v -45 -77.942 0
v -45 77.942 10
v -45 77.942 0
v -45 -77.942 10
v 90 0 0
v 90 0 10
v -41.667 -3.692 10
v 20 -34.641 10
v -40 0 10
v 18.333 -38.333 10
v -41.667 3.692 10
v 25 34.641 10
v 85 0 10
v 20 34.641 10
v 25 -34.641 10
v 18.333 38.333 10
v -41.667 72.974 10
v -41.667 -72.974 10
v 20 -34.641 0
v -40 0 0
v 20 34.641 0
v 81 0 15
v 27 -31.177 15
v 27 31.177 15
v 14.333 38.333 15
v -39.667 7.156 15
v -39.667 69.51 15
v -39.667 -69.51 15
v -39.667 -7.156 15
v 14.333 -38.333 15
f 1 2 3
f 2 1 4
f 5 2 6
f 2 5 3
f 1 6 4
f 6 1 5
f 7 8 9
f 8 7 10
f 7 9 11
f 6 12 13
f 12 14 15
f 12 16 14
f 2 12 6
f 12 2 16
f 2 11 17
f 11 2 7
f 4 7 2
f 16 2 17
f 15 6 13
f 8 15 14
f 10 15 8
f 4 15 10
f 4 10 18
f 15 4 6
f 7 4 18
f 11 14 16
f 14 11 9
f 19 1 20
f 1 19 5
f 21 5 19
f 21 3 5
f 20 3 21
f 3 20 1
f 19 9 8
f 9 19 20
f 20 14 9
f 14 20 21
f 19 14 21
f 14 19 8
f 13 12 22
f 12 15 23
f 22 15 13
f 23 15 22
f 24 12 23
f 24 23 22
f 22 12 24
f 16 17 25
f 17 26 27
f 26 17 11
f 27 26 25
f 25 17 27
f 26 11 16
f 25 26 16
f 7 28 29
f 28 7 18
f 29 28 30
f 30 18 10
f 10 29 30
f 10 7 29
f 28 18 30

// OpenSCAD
//Created and printed this model as a christmas present for my brother

//main refers to base triangle
//sub referse to cap triangles
main_thickness = 10;
main_length = 90;
sub_thickness = 5;
sub_length = 40;
sub_warp = .9;
border = 5;


            // first triangle 'cap'
            translate([main_length-sub_length-border,0,main_thickness])
            {
                cylinder(sub_thickness,sub_length,sub_length*sub_warp, center = false, $fn = 3);
            }
            // second triangle 'cap'
            translate([
                        -(main_length-sub_length)/3-border,
                        2*(main_length-sub_length)/3+border,
                        main_thickness
                      ])
            {
                cylinder(sub_thickness,sub_length,sub_length*sub_warp, center = false, $fn = 3);
            }
            
            //third triangle 'cap'
            translate([
                        -(main_length-sub_length)/3-border,
                        -2*(main_length-sub_length)/3-border,
                        main_thickness
                      ])
            {
                cylinder(sub_thickness,sub_length,sub_length*sub_warp, center = false, $fn = 3);
            }
            
            //base triangle
            difference()
            {
                cylinder(main_thickness,main_length,main_length, center = false, $fn = 3);
                rotate(60)
                {
                    translate([0,0,-1])
                    {
                        cylinder(main_thickness+2,sub_length,sub_length, center = false, $fn = 3);  
                    }
                }
            }
  
